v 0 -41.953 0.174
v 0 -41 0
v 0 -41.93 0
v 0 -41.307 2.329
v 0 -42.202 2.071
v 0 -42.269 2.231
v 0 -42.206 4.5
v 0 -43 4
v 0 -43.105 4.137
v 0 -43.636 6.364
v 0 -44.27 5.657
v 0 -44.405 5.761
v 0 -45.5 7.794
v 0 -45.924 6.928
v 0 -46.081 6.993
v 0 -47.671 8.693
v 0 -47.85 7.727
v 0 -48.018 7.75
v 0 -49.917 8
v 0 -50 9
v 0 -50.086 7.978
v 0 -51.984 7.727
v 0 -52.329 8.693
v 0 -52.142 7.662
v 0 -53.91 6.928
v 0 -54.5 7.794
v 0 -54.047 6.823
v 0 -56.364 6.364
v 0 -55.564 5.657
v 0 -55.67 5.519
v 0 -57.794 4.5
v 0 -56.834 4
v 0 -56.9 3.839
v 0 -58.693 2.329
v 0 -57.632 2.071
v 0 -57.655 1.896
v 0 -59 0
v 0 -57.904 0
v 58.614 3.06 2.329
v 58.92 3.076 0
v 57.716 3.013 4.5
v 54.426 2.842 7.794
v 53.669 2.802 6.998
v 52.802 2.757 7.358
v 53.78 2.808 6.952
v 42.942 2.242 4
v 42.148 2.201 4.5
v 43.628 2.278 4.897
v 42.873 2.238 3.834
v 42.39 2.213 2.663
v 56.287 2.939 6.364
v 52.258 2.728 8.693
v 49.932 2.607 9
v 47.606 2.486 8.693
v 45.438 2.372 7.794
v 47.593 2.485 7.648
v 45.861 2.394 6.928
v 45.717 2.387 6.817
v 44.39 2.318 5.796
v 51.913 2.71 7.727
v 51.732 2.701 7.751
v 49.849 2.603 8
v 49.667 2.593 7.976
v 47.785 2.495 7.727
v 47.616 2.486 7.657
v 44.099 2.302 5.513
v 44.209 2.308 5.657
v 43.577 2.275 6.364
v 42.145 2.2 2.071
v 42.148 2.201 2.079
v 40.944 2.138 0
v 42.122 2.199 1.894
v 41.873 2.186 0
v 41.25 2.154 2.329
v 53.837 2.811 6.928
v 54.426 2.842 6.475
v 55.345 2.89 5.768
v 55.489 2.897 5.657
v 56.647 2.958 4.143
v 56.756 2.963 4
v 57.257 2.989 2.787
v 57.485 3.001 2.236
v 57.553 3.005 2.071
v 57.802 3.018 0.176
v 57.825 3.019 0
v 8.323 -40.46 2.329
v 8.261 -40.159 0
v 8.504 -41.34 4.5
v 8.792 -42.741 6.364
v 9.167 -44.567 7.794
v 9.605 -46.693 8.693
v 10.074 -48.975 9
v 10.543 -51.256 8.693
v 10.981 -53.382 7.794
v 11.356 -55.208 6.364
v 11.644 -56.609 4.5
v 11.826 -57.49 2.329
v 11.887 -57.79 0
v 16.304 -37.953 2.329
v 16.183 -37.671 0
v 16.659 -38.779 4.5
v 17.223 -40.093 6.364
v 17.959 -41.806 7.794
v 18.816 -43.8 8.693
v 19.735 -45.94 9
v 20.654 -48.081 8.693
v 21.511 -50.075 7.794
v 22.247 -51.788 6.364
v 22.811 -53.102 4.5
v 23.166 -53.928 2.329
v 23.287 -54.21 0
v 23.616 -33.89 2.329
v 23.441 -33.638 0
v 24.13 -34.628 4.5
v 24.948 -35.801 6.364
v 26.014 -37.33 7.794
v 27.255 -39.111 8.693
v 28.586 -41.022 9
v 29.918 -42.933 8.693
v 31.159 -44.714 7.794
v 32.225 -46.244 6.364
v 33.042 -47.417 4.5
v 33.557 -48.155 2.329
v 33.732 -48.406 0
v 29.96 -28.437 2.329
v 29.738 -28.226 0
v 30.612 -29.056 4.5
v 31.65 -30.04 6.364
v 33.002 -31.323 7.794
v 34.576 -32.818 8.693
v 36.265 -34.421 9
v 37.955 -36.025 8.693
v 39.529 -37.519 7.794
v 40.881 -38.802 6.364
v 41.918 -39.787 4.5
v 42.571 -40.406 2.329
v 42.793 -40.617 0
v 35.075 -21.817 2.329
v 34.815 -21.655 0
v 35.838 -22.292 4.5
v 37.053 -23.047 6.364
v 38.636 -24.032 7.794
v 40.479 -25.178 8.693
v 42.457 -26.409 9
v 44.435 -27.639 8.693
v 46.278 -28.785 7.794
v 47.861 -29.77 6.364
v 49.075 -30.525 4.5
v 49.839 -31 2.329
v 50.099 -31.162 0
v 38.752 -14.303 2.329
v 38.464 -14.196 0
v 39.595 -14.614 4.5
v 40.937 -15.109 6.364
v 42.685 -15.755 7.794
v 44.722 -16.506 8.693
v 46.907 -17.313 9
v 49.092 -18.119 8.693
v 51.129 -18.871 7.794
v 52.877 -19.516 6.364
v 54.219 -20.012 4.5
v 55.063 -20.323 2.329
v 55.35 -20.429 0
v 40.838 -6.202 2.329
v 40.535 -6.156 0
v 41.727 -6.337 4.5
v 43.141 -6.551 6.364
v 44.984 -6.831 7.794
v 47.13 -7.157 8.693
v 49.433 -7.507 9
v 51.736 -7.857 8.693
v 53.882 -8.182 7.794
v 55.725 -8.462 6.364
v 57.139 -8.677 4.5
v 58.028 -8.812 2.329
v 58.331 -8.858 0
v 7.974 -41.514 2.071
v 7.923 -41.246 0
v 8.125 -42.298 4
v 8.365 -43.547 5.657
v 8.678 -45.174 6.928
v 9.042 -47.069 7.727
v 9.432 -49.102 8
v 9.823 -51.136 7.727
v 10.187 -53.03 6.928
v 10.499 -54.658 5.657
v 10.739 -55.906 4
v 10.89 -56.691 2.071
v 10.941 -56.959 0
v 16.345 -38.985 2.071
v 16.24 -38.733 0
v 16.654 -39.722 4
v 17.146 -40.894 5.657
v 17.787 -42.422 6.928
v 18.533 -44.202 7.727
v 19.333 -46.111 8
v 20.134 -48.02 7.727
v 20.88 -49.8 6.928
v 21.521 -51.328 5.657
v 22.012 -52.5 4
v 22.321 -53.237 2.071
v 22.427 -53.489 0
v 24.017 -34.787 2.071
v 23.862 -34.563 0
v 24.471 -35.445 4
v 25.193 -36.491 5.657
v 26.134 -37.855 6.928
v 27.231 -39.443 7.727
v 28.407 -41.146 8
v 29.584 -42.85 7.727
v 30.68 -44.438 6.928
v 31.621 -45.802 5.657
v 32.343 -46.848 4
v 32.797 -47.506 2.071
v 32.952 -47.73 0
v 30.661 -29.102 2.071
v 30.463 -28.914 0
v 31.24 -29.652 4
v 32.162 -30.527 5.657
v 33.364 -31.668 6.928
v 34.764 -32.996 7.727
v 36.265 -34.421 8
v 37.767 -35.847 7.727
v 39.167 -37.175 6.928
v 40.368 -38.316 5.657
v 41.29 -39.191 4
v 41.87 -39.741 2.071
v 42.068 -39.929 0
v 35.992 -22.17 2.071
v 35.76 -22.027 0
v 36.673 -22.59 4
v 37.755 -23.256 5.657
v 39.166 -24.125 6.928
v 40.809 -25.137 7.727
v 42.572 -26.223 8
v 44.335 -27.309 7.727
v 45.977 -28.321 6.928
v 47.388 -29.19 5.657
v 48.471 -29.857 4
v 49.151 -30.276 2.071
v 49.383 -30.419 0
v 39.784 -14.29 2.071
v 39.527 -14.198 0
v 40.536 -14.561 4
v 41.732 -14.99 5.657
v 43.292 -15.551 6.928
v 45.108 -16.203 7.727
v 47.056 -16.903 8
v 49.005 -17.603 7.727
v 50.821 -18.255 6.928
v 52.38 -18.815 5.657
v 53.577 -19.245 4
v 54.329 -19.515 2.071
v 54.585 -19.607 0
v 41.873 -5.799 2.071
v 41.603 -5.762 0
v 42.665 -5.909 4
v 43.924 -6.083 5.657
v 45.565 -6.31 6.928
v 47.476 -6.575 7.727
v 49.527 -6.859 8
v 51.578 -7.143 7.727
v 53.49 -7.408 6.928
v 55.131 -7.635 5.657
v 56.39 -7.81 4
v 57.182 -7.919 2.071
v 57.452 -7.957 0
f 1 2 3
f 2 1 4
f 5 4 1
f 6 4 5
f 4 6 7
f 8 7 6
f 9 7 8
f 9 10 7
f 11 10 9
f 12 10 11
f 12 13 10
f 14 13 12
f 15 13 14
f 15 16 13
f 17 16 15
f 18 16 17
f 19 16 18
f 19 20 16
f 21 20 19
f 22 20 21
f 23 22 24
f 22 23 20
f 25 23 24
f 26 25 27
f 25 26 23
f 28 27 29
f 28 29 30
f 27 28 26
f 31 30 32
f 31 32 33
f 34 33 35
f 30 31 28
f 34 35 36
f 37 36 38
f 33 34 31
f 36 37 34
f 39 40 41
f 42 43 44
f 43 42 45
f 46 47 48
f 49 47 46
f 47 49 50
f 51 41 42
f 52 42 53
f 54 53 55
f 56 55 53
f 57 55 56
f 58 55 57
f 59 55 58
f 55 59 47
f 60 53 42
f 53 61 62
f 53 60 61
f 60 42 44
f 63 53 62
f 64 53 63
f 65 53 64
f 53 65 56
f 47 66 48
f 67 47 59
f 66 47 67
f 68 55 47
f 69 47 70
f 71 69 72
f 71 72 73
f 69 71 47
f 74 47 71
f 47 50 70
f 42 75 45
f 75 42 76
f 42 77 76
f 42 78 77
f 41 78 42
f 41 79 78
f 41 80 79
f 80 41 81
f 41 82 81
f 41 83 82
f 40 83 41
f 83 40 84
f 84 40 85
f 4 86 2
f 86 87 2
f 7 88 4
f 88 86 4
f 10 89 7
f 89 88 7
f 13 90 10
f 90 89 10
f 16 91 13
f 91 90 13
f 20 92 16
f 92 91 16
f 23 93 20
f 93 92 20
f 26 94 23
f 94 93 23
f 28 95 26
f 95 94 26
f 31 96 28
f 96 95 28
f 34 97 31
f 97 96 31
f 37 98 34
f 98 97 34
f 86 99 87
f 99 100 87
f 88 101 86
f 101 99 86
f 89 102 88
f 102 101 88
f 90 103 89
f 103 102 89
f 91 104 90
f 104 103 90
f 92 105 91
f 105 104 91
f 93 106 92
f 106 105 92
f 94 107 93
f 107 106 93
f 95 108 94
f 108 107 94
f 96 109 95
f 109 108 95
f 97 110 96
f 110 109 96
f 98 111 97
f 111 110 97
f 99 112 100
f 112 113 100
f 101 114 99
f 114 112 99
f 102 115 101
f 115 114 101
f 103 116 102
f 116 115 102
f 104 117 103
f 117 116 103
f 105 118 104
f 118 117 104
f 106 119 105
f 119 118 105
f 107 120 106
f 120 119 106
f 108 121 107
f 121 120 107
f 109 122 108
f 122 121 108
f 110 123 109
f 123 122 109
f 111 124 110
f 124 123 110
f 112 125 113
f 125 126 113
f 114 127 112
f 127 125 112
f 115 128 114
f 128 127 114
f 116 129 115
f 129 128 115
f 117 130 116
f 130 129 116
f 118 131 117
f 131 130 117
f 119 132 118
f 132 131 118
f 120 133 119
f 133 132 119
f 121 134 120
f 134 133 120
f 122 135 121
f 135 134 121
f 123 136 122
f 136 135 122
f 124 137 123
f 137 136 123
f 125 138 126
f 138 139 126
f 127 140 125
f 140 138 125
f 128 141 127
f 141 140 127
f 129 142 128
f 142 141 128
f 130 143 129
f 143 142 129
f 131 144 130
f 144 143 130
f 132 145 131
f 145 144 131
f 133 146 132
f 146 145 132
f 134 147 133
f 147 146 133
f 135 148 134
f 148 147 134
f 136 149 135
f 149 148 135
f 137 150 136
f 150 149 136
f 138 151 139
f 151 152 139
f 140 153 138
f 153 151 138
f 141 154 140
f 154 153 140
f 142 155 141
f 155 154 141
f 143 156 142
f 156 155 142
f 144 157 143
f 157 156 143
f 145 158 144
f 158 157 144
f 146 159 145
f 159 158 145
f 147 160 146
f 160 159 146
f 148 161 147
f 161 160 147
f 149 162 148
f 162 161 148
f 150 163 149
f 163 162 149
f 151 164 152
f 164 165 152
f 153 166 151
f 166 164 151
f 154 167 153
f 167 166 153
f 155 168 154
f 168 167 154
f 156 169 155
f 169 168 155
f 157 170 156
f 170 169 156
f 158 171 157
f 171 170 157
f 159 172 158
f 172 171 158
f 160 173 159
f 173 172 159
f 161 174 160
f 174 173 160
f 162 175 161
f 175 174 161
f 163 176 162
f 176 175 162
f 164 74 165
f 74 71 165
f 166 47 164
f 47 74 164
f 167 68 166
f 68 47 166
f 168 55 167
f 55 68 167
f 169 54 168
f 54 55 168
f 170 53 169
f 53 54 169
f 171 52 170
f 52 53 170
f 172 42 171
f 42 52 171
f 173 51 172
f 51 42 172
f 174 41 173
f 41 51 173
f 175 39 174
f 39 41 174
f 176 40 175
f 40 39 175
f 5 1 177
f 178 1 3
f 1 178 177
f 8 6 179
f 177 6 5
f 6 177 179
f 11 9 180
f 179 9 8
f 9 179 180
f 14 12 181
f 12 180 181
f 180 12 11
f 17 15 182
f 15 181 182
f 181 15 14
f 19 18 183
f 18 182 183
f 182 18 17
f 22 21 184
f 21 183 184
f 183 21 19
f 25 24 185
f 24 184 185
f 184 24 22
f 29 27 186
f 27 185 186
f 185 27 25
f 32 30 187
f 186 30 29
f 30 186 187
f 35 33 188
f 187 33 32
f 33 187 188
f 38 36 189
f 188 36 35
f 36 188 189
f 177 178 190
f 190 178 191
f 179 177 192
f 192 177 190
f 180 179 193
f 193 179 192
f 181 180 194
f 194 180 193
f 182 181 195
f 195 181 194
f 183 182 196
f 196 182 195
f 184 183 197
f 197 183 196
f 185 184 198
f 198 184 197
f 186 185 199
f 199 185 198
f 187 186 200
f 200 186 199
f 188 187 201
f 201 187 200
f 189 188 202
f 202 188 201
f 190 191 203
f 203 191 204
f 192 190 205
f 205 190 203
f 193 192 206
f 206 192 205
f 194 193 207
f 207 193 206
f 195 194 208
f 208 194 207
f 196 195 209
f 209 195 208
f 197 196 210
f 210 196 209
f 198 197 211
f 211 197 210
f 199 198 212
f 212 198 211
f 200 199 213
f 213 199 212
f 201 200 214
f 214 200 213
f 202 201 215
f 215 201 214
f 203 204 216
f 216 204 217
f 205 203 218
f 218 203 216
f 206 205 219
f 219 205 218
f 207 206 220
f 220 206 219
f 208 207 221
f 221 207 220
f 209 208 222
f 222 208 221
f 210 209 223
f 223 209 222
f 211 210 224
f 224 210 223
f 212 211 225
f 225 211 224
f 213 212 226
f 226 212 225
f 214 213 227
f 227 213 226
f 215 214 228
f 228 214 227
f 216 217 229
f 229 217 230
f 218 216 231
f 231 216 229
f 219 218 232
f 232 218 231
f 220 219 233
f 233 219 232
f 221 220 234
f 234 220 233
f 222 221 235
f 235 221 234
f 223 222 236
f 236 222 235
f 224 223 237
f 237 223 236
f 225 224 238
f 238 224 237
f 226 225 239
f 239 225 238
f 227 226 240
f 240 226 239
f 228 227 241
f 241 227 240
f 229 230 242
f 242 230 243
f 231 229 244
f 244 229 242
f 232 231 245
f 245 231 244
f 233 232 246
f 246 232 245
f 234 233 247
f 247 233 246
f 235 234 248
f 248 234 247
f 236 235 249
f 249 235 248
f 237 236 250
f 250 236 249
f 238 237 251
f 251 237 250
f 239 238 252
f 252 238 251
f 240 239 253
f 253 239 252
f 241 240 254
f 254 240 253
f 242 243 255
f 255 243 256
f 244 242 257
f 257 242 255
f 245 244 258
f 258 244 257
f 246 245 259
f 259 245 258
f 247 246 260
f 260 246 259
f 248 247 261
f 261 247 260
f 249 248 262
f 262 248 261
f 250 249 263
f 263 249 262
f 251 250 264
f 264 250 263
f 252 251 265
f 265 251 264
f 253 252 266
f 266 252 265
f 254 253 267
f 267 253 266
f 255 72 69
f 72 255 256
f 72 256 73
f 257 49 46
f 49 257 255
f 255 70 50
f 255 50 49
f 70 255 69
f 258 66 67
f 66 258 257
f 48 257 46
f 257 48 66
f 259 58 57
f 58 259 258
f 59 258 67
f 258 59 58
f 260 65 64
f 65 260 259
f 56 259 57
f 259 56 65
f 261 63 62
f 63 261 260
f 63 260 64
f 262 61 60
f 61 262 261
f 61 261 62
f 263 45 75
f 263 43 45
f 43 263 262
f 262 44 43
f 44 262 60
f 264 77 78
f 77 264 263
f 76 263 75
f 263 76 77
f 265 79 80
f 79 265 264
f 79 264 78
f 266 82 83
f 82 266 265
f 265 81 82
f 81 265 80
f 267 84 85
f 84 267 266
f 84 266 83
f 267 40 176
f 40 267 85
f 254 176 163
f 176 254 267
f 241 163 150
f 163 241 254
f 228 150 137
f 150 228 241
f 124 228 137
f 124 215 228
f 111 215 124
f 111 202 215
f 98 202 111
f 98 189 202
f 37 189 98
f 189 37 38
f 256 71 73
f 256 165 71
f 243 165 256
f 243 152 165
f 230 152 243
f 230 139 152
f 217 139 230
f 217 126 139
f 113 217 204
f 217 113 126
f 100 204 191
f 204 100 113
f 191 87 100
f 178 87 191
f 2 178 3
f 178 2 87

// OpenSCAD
// file: ../build_environments.scad
// build_environments.scad: modules to build level sections
//

module pool(diameter=10.0, wall_height=2.0, step_width=3.0, connections=[])
{
    difference() {
        union() {
        difference() {
            cylinder(h=0.5,r1=diameter+step_width,r2=diameter+step_width,$fn=48);
            translate([0,0,-0.1])
                cylinder(h=0.7,r1=diameter,r2=diameter,$fn=48);
        }
        difference() {
            cylinder(h=wall_height,r1=diameter+step_width+1.0,r2=diameter+step_width+1.0,$fn=48);
            translate([0,0,-0.1])
                cylinder(h=wall_height+0.2,r1=diameter+step_width,r2=diameter+step_width,$fn=48);
        }
        }
    
        for (c = connections)
        {
            rotate([0,90,0]) {
                angle = atan2(c[1],c[0]);
                rotate([-angle,0,0]) {
                    cylinder(h=diameter+5.0,r1=c[2],r2=c[2],$fn=48);
                }
            }
        }
    }
}

module straight(length=10.0, width=2.0, dy1=0.0, dy2=0.0, dz=0.0)
{
    dims = [0, 0, 0, 0, 0, (dz/length)];
    matrix = [
        [ 1, dims[0], dims[1], 0 ],
        [ dims[2], 1, dims[4], 0 ],
        [ dims[5], dims[3], 1, 0 ],
        [ 0, 0, 0, 1 ]
    ];
    multmatrix(matrix)
    difference() {
        translate([dy1,0,0])
        union() {
            rotate([0,90,0]) {
                difference() {
                    cylinder(h=(length-dy1-dy2),r1=width+1.0,r2=width+1.0,$fn=24);
                    translate([0,0,-0.1])
                        cylinder(h=(length-dy1-dy2+0.2),r1=width,r2=width,$fn=24);
                }
                difference() {
                    cylinder(h=1.0,r1=width+2.0,r2=width+2.0,$fn=24);
                    translate([0,0,-0.1])
                        cylinder(h=1.2,r1=width,r2=width,$fn=24);
                }
                translate([0,0,(length-dy1-dy2)-1.0]) {
                    difference() {
                        cylinder(h=1.0,r1=width+2.0,r2=width+2.0,$fn=24);
                        translate([0,0,-0.1])
                            cylinder(h=1.2,r1=width,r2=width,$fn=24);
                    }
                }
            }
        }
        translate([0,0,-(2*width+4.0)/2])
            cube([3*length,3*length,2*width+4.0],center=true);
    }
}

module curve(p0=[0,0], center=[0,0], dir=1, angle=0.0, width=2.0)
{
    radius = sqrt((p0[0]-center[0])*(p0[0]-center[0]) + (p0[1]-center[1])*(p0[1]-center[1]));
    if (dir == 0) {
        difference() {
            rotate([0,0,-90])
            difference() {
                rotate_extrude(angle = angle, convexity = 10, $fn=32)
                    translate([radius, 0, 0])
                        circle(r = width+1.0,$fn=24);
                rotate([0,0,-1.0])
                    rotate_extrude(angle = angle+2.0, convexity = 10, $fn=32)
                        translate([radius, 0, 0])
                            circle(r = width,$fn=24);
            }
            translate([0,0,-(2*width+4.0)/2])
                cube([5*radius,5*radius,2*width+4.0],center=true);
        }
    }
    else {
        difference() {
            rotate([0,0,90])
            difference() {
                rotate_extrude(angle = -angle, convexity = 10, $fn=32)
                    translate([radius, 0, 0])
                        circle(r = width+1.0,$fn=24);
                rotate([0,0,1.0])
                    rotate_extrude(angle = -angle-2.0, convexity = 10, $fn=32)
                        translate([radius, 0, 0])
                            circle(r = width,$fn=24);
            }
            translate([0,0,-(2*width+4.0)/2])
                cube([5*radius,5*radius,2*width+4.0],center=true);
        }
    }

}

// test pool
//pool(diameter=12.0000, wall_height=3.0000, step_width=3.0000, connections=[[0.0000,-26.0000,2.0000], [23.6074,0.0000,2.0000]]);

// test straight, slope
//straight(length=26.0000, width=2.0000, dy1=11.8322, dy2=6.7082, dz=0.0000);
//straight(length=29.1549, width=12.0000, dy1=0.0000, dy2=0.0000, dz=-15.0000);

// test curve
//curve(p0=[23.6074, 0.0000], center=[23.6074, 5.0000], dir=0, angle=60.1011, width=2.0000);
//curve(p0=[33.6426, 12.4219], center=[37.9771, 9.9295], dir=1, angle=120.4627, width=2.0000);
// main file
use <../build_environments.scad>;
curve(p0=[232.8388, 83.9391], center=[184.8488, 97.9734], dir=0, angle=92.9887, width=8.0000);
